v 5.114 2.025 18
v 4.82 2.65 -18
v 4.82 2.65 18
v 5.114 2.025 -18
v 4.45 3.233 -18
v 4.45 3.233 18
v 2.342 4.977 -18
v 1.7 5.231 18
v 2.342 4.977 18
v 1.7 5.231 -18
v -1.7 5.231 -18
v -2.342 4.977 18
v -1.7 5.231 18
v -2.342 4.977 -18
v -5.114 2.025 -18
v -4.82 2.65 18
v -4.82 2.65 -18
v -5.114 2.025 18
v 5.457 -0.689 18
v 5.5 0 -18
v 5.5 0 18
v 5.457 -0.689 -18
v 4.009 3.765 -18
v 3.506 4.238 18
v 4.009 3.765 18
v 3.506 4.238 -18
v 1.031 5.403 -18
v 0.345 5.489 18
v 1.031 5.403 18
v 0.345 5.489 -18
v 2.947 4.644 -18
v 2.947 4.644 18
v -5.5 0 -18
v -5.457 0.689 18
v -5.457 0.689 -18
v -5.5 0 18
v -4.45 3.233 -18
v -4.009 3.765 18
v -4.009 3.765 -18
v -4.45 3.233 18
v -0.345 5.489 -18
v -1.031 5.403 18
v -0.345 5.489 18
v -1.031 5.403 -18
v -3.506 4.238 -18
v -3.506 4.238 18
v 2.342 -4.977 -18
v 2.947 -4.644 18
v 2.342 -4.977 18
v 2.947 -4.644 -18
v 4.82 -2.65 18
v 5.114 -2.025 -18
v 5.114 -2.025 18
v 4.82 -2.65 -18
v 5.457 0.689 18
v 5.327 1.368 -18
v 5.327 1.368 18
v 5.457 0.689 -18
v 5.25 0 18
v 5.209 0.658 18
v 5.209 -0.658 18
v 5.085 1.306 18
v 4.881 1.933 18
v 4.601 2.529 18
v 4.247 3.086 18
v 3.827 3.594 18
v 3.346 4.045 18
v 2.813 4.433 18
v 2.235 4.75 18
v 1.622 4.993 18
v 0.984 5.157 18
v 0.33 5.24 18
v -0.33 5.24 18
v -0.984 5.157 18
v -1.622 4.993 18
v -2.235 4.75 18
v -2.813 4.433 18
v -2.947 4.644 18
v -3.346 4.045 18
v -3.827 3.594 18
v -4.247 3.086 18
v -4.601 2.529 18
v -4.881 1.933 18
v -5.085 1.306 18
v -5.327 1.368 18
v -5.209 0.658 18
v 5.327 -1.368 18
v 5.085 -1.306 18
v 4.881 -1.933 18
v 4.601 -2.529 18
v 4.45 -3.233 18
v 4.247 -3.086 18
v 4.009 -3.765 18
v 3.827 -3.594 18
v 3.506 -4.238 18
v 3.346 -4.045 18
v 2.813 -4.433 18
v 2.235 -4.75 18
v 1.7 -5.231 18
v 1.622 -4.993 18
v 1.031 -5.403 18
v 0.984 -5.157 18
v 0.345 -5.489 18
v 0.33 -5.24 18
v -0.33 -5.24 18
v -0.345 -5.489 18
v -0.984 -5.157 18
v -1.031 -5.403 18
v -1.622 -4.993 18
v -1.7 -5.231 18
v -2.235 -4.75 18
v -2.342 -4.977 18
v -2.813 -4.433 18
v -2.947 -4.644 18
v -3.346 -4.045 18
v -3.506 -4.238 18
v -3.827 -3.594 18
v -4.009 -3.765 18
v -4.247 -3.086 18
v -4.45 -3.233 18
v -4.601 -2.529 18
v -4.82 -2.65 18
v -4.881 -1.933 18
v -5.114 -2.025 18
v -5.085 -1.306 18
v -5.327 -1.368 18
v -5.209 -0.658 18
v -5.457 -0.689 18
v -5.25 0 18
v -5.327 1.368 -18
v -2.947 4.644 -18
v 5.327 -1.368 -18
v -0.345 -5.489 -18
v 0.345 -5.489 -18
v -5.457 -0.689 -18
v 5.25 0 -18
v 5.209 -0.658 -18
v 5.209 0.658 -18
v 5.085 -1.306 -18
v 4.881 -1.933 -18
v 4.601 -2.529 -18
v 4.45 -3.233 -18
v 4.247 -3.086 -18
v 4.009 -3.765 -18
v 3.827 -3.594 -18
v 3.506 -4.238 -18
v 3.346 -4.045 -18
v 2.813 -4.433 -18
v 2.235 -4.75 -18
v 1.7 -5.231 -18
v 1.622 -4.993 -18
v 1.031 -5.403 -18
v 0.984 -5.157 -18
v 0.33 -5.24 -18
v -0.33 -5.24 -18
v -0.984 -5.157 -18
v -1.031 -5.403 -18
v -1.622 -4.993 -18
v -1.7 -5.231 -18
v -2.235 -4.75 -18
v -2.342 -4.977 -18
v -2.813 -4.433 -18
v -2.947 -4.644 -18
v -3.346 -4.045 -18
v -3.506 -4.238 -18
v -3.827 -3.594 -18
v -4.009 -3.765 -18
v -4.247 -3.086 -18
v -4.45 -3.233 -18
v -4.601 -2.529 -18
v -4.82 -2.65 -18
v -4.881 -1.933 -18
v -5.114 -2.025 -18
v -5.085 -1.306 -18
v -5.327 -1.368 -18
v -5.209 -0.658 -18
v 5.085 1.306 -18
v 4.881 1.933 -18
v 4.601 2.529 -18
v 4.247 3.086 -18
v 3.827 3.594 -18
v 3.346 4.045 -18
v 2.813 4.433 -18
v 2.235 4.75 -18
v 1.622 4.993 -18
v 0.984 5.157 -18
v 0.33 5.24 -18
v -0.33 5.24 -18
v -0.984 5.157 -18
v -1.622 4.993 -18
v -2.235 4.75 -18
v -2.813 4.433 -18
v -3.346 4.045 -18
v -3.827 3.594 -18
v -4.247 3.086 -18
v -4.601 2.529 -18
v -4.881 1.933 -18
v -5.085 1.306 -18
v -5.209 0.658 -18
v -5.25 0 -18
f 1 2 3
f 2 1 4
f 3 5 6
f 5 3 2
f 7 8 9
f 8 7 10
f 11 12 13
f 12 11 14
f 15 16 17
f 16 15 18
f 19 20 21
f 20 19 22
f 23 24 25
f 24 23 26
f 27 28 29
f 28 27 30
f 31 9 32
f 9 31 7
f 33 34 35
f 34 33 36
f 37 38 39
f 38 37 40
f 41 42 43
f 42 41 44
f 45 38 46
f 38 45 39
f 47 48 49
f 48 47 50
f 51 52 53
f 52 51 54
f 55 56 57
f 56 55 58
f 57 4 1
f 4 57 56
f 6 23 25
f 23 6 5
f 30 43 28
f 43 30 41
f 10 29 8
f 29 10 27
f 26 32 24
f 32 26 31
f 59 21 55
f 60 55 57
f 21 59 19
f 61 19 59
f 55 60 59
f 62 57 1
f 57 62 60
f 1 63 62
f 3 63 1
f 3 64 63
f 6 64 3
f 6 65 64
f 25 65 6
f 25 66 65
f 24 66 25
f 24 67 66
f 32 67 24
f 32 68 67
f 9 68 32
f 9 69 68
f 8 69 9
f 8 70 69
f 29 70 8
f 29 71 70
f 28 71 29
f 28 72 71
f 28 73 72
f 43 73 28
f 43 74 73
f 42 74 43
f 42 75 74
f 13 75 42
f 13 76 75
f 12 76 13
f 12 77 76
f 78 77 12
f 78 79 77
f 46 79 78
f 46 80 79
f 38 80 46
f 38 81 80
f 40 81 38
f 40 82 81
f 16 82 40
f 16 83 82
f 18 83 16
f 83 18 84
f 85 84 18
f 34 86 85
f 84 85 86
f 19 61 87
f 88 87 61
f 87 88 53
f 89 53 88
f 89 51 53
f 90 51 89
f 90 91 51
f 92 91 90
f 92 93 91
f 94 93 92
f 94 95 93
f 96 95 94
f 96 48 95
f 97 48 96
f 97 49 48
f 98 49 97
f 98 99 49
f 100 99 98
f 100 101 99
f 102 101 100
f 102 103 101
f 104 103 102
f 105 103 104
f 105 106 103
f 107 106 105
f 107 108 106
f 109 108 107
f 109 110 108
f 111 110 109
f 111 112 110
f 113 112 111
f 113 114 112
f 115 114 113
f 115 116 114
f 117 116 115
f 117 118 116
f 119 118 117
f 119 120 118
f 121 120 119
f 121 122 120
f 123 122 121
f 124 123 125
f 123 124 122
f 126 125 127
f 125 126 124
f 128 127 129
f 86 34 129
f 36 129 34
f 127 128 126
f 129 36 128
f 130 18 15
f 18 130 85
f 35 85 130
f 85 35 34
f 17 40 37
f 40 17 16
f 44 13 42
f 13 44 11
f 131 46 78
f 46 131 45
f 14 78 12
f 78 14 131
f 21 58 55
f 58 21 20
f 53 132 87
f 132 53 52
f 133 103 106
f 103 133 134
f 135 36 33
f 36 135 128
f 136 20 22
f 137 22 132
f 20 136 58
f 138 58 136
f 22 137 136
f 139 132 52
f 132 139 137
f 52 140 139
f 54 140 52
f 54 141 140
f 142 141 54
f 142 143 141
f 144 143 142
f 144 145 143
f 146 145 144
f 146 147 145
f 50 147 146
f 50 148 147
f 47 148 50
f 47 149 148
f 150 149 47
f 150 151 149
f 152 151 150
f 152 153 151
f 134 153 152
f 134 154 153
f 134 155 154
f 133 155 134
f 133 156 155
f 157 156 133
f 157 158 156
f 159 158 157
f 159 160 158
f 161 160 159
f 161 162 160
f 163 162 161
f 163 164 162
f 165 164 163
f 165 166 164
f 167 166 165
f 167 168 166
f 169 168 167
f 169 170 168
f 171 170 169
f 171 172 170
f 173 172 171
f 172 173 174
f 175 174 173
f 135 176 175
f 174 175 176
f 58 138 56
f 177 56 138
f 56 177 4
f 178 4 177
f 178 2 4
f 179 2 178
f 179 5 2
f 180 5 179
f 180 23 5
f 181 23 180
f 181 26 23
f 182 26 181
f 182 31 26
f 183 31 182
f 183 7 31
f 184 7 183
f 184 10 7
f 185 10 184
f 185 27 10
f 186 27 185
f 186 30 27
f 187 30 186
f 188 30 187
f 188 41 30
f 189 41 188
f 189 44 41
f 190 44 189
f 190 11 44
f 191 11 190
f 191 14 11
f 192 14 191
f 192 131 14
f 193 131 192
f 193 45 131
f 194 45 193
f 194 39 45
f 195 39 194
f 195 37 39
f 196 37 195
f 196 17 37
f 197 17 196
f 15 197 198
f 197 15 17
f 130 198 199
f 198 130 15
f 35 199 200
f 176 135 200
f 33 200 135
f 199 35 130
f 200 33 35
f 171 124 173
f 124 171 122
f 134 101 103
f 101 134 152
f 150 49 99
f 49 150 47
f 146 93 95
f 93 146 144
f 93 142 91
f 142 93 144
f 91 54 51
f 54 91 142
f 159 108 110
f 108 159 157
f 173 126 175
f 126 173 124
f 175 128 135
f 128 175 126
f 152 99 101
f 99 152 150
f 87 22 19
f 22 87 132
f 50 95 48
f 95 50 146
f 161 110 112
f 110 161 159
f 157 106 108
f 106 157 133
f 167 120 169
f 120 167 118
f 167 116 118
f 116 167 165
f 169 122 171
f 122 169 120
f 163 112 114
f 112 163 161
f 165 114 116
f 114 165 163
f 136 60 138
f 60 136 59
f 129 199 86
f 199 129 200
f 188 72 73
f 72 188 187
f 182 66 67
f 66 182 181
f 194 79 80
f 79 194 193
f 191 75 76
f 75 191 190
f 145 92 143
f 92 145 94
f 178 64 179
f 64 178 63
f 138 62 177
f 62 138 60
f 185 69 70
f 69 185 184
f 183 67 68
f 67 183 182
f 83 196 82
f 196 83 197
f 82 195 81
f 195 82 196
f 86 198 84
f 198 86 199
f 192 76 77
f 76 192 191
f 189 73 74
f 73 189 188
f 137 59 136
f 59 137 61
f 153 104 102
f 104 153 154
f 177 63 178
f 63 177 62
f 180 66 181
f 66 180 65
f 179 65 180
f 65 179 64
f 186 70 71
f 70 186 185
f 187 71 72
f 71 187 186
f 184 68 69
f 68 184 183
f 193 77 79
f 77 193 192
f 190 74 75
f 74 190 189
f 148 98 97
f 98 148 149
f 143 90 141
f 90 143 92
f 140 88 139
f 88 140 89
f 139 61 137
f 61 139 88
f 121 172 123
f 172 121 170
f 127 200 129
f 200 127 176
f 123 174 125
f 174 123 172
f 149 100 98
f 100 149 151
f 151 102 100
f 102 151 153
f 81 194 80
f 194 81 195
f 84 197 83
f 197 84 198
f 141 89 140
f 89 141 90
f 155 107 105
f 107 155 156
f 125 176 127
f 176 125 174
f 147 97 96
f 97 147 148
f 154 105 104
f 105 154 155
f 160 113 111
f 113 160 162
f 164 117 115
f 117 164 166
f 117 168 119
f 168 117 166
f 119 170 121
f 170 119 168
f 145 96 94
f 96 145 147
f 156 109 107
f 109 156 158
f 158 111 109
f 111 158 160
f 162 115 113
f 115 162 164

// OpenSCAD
$fn = 50;


difference() {
	union() {
		translate(v = [0, 0, -18.0000000000]) {
			cylinder(h = 36, r = 5.5000000000);
		}
	}
	union() {
		translate(v = [0, 0, -100.0000000000]) {
			cylinder(h = 200, r = 5.2500000000);
		}
	}
}
